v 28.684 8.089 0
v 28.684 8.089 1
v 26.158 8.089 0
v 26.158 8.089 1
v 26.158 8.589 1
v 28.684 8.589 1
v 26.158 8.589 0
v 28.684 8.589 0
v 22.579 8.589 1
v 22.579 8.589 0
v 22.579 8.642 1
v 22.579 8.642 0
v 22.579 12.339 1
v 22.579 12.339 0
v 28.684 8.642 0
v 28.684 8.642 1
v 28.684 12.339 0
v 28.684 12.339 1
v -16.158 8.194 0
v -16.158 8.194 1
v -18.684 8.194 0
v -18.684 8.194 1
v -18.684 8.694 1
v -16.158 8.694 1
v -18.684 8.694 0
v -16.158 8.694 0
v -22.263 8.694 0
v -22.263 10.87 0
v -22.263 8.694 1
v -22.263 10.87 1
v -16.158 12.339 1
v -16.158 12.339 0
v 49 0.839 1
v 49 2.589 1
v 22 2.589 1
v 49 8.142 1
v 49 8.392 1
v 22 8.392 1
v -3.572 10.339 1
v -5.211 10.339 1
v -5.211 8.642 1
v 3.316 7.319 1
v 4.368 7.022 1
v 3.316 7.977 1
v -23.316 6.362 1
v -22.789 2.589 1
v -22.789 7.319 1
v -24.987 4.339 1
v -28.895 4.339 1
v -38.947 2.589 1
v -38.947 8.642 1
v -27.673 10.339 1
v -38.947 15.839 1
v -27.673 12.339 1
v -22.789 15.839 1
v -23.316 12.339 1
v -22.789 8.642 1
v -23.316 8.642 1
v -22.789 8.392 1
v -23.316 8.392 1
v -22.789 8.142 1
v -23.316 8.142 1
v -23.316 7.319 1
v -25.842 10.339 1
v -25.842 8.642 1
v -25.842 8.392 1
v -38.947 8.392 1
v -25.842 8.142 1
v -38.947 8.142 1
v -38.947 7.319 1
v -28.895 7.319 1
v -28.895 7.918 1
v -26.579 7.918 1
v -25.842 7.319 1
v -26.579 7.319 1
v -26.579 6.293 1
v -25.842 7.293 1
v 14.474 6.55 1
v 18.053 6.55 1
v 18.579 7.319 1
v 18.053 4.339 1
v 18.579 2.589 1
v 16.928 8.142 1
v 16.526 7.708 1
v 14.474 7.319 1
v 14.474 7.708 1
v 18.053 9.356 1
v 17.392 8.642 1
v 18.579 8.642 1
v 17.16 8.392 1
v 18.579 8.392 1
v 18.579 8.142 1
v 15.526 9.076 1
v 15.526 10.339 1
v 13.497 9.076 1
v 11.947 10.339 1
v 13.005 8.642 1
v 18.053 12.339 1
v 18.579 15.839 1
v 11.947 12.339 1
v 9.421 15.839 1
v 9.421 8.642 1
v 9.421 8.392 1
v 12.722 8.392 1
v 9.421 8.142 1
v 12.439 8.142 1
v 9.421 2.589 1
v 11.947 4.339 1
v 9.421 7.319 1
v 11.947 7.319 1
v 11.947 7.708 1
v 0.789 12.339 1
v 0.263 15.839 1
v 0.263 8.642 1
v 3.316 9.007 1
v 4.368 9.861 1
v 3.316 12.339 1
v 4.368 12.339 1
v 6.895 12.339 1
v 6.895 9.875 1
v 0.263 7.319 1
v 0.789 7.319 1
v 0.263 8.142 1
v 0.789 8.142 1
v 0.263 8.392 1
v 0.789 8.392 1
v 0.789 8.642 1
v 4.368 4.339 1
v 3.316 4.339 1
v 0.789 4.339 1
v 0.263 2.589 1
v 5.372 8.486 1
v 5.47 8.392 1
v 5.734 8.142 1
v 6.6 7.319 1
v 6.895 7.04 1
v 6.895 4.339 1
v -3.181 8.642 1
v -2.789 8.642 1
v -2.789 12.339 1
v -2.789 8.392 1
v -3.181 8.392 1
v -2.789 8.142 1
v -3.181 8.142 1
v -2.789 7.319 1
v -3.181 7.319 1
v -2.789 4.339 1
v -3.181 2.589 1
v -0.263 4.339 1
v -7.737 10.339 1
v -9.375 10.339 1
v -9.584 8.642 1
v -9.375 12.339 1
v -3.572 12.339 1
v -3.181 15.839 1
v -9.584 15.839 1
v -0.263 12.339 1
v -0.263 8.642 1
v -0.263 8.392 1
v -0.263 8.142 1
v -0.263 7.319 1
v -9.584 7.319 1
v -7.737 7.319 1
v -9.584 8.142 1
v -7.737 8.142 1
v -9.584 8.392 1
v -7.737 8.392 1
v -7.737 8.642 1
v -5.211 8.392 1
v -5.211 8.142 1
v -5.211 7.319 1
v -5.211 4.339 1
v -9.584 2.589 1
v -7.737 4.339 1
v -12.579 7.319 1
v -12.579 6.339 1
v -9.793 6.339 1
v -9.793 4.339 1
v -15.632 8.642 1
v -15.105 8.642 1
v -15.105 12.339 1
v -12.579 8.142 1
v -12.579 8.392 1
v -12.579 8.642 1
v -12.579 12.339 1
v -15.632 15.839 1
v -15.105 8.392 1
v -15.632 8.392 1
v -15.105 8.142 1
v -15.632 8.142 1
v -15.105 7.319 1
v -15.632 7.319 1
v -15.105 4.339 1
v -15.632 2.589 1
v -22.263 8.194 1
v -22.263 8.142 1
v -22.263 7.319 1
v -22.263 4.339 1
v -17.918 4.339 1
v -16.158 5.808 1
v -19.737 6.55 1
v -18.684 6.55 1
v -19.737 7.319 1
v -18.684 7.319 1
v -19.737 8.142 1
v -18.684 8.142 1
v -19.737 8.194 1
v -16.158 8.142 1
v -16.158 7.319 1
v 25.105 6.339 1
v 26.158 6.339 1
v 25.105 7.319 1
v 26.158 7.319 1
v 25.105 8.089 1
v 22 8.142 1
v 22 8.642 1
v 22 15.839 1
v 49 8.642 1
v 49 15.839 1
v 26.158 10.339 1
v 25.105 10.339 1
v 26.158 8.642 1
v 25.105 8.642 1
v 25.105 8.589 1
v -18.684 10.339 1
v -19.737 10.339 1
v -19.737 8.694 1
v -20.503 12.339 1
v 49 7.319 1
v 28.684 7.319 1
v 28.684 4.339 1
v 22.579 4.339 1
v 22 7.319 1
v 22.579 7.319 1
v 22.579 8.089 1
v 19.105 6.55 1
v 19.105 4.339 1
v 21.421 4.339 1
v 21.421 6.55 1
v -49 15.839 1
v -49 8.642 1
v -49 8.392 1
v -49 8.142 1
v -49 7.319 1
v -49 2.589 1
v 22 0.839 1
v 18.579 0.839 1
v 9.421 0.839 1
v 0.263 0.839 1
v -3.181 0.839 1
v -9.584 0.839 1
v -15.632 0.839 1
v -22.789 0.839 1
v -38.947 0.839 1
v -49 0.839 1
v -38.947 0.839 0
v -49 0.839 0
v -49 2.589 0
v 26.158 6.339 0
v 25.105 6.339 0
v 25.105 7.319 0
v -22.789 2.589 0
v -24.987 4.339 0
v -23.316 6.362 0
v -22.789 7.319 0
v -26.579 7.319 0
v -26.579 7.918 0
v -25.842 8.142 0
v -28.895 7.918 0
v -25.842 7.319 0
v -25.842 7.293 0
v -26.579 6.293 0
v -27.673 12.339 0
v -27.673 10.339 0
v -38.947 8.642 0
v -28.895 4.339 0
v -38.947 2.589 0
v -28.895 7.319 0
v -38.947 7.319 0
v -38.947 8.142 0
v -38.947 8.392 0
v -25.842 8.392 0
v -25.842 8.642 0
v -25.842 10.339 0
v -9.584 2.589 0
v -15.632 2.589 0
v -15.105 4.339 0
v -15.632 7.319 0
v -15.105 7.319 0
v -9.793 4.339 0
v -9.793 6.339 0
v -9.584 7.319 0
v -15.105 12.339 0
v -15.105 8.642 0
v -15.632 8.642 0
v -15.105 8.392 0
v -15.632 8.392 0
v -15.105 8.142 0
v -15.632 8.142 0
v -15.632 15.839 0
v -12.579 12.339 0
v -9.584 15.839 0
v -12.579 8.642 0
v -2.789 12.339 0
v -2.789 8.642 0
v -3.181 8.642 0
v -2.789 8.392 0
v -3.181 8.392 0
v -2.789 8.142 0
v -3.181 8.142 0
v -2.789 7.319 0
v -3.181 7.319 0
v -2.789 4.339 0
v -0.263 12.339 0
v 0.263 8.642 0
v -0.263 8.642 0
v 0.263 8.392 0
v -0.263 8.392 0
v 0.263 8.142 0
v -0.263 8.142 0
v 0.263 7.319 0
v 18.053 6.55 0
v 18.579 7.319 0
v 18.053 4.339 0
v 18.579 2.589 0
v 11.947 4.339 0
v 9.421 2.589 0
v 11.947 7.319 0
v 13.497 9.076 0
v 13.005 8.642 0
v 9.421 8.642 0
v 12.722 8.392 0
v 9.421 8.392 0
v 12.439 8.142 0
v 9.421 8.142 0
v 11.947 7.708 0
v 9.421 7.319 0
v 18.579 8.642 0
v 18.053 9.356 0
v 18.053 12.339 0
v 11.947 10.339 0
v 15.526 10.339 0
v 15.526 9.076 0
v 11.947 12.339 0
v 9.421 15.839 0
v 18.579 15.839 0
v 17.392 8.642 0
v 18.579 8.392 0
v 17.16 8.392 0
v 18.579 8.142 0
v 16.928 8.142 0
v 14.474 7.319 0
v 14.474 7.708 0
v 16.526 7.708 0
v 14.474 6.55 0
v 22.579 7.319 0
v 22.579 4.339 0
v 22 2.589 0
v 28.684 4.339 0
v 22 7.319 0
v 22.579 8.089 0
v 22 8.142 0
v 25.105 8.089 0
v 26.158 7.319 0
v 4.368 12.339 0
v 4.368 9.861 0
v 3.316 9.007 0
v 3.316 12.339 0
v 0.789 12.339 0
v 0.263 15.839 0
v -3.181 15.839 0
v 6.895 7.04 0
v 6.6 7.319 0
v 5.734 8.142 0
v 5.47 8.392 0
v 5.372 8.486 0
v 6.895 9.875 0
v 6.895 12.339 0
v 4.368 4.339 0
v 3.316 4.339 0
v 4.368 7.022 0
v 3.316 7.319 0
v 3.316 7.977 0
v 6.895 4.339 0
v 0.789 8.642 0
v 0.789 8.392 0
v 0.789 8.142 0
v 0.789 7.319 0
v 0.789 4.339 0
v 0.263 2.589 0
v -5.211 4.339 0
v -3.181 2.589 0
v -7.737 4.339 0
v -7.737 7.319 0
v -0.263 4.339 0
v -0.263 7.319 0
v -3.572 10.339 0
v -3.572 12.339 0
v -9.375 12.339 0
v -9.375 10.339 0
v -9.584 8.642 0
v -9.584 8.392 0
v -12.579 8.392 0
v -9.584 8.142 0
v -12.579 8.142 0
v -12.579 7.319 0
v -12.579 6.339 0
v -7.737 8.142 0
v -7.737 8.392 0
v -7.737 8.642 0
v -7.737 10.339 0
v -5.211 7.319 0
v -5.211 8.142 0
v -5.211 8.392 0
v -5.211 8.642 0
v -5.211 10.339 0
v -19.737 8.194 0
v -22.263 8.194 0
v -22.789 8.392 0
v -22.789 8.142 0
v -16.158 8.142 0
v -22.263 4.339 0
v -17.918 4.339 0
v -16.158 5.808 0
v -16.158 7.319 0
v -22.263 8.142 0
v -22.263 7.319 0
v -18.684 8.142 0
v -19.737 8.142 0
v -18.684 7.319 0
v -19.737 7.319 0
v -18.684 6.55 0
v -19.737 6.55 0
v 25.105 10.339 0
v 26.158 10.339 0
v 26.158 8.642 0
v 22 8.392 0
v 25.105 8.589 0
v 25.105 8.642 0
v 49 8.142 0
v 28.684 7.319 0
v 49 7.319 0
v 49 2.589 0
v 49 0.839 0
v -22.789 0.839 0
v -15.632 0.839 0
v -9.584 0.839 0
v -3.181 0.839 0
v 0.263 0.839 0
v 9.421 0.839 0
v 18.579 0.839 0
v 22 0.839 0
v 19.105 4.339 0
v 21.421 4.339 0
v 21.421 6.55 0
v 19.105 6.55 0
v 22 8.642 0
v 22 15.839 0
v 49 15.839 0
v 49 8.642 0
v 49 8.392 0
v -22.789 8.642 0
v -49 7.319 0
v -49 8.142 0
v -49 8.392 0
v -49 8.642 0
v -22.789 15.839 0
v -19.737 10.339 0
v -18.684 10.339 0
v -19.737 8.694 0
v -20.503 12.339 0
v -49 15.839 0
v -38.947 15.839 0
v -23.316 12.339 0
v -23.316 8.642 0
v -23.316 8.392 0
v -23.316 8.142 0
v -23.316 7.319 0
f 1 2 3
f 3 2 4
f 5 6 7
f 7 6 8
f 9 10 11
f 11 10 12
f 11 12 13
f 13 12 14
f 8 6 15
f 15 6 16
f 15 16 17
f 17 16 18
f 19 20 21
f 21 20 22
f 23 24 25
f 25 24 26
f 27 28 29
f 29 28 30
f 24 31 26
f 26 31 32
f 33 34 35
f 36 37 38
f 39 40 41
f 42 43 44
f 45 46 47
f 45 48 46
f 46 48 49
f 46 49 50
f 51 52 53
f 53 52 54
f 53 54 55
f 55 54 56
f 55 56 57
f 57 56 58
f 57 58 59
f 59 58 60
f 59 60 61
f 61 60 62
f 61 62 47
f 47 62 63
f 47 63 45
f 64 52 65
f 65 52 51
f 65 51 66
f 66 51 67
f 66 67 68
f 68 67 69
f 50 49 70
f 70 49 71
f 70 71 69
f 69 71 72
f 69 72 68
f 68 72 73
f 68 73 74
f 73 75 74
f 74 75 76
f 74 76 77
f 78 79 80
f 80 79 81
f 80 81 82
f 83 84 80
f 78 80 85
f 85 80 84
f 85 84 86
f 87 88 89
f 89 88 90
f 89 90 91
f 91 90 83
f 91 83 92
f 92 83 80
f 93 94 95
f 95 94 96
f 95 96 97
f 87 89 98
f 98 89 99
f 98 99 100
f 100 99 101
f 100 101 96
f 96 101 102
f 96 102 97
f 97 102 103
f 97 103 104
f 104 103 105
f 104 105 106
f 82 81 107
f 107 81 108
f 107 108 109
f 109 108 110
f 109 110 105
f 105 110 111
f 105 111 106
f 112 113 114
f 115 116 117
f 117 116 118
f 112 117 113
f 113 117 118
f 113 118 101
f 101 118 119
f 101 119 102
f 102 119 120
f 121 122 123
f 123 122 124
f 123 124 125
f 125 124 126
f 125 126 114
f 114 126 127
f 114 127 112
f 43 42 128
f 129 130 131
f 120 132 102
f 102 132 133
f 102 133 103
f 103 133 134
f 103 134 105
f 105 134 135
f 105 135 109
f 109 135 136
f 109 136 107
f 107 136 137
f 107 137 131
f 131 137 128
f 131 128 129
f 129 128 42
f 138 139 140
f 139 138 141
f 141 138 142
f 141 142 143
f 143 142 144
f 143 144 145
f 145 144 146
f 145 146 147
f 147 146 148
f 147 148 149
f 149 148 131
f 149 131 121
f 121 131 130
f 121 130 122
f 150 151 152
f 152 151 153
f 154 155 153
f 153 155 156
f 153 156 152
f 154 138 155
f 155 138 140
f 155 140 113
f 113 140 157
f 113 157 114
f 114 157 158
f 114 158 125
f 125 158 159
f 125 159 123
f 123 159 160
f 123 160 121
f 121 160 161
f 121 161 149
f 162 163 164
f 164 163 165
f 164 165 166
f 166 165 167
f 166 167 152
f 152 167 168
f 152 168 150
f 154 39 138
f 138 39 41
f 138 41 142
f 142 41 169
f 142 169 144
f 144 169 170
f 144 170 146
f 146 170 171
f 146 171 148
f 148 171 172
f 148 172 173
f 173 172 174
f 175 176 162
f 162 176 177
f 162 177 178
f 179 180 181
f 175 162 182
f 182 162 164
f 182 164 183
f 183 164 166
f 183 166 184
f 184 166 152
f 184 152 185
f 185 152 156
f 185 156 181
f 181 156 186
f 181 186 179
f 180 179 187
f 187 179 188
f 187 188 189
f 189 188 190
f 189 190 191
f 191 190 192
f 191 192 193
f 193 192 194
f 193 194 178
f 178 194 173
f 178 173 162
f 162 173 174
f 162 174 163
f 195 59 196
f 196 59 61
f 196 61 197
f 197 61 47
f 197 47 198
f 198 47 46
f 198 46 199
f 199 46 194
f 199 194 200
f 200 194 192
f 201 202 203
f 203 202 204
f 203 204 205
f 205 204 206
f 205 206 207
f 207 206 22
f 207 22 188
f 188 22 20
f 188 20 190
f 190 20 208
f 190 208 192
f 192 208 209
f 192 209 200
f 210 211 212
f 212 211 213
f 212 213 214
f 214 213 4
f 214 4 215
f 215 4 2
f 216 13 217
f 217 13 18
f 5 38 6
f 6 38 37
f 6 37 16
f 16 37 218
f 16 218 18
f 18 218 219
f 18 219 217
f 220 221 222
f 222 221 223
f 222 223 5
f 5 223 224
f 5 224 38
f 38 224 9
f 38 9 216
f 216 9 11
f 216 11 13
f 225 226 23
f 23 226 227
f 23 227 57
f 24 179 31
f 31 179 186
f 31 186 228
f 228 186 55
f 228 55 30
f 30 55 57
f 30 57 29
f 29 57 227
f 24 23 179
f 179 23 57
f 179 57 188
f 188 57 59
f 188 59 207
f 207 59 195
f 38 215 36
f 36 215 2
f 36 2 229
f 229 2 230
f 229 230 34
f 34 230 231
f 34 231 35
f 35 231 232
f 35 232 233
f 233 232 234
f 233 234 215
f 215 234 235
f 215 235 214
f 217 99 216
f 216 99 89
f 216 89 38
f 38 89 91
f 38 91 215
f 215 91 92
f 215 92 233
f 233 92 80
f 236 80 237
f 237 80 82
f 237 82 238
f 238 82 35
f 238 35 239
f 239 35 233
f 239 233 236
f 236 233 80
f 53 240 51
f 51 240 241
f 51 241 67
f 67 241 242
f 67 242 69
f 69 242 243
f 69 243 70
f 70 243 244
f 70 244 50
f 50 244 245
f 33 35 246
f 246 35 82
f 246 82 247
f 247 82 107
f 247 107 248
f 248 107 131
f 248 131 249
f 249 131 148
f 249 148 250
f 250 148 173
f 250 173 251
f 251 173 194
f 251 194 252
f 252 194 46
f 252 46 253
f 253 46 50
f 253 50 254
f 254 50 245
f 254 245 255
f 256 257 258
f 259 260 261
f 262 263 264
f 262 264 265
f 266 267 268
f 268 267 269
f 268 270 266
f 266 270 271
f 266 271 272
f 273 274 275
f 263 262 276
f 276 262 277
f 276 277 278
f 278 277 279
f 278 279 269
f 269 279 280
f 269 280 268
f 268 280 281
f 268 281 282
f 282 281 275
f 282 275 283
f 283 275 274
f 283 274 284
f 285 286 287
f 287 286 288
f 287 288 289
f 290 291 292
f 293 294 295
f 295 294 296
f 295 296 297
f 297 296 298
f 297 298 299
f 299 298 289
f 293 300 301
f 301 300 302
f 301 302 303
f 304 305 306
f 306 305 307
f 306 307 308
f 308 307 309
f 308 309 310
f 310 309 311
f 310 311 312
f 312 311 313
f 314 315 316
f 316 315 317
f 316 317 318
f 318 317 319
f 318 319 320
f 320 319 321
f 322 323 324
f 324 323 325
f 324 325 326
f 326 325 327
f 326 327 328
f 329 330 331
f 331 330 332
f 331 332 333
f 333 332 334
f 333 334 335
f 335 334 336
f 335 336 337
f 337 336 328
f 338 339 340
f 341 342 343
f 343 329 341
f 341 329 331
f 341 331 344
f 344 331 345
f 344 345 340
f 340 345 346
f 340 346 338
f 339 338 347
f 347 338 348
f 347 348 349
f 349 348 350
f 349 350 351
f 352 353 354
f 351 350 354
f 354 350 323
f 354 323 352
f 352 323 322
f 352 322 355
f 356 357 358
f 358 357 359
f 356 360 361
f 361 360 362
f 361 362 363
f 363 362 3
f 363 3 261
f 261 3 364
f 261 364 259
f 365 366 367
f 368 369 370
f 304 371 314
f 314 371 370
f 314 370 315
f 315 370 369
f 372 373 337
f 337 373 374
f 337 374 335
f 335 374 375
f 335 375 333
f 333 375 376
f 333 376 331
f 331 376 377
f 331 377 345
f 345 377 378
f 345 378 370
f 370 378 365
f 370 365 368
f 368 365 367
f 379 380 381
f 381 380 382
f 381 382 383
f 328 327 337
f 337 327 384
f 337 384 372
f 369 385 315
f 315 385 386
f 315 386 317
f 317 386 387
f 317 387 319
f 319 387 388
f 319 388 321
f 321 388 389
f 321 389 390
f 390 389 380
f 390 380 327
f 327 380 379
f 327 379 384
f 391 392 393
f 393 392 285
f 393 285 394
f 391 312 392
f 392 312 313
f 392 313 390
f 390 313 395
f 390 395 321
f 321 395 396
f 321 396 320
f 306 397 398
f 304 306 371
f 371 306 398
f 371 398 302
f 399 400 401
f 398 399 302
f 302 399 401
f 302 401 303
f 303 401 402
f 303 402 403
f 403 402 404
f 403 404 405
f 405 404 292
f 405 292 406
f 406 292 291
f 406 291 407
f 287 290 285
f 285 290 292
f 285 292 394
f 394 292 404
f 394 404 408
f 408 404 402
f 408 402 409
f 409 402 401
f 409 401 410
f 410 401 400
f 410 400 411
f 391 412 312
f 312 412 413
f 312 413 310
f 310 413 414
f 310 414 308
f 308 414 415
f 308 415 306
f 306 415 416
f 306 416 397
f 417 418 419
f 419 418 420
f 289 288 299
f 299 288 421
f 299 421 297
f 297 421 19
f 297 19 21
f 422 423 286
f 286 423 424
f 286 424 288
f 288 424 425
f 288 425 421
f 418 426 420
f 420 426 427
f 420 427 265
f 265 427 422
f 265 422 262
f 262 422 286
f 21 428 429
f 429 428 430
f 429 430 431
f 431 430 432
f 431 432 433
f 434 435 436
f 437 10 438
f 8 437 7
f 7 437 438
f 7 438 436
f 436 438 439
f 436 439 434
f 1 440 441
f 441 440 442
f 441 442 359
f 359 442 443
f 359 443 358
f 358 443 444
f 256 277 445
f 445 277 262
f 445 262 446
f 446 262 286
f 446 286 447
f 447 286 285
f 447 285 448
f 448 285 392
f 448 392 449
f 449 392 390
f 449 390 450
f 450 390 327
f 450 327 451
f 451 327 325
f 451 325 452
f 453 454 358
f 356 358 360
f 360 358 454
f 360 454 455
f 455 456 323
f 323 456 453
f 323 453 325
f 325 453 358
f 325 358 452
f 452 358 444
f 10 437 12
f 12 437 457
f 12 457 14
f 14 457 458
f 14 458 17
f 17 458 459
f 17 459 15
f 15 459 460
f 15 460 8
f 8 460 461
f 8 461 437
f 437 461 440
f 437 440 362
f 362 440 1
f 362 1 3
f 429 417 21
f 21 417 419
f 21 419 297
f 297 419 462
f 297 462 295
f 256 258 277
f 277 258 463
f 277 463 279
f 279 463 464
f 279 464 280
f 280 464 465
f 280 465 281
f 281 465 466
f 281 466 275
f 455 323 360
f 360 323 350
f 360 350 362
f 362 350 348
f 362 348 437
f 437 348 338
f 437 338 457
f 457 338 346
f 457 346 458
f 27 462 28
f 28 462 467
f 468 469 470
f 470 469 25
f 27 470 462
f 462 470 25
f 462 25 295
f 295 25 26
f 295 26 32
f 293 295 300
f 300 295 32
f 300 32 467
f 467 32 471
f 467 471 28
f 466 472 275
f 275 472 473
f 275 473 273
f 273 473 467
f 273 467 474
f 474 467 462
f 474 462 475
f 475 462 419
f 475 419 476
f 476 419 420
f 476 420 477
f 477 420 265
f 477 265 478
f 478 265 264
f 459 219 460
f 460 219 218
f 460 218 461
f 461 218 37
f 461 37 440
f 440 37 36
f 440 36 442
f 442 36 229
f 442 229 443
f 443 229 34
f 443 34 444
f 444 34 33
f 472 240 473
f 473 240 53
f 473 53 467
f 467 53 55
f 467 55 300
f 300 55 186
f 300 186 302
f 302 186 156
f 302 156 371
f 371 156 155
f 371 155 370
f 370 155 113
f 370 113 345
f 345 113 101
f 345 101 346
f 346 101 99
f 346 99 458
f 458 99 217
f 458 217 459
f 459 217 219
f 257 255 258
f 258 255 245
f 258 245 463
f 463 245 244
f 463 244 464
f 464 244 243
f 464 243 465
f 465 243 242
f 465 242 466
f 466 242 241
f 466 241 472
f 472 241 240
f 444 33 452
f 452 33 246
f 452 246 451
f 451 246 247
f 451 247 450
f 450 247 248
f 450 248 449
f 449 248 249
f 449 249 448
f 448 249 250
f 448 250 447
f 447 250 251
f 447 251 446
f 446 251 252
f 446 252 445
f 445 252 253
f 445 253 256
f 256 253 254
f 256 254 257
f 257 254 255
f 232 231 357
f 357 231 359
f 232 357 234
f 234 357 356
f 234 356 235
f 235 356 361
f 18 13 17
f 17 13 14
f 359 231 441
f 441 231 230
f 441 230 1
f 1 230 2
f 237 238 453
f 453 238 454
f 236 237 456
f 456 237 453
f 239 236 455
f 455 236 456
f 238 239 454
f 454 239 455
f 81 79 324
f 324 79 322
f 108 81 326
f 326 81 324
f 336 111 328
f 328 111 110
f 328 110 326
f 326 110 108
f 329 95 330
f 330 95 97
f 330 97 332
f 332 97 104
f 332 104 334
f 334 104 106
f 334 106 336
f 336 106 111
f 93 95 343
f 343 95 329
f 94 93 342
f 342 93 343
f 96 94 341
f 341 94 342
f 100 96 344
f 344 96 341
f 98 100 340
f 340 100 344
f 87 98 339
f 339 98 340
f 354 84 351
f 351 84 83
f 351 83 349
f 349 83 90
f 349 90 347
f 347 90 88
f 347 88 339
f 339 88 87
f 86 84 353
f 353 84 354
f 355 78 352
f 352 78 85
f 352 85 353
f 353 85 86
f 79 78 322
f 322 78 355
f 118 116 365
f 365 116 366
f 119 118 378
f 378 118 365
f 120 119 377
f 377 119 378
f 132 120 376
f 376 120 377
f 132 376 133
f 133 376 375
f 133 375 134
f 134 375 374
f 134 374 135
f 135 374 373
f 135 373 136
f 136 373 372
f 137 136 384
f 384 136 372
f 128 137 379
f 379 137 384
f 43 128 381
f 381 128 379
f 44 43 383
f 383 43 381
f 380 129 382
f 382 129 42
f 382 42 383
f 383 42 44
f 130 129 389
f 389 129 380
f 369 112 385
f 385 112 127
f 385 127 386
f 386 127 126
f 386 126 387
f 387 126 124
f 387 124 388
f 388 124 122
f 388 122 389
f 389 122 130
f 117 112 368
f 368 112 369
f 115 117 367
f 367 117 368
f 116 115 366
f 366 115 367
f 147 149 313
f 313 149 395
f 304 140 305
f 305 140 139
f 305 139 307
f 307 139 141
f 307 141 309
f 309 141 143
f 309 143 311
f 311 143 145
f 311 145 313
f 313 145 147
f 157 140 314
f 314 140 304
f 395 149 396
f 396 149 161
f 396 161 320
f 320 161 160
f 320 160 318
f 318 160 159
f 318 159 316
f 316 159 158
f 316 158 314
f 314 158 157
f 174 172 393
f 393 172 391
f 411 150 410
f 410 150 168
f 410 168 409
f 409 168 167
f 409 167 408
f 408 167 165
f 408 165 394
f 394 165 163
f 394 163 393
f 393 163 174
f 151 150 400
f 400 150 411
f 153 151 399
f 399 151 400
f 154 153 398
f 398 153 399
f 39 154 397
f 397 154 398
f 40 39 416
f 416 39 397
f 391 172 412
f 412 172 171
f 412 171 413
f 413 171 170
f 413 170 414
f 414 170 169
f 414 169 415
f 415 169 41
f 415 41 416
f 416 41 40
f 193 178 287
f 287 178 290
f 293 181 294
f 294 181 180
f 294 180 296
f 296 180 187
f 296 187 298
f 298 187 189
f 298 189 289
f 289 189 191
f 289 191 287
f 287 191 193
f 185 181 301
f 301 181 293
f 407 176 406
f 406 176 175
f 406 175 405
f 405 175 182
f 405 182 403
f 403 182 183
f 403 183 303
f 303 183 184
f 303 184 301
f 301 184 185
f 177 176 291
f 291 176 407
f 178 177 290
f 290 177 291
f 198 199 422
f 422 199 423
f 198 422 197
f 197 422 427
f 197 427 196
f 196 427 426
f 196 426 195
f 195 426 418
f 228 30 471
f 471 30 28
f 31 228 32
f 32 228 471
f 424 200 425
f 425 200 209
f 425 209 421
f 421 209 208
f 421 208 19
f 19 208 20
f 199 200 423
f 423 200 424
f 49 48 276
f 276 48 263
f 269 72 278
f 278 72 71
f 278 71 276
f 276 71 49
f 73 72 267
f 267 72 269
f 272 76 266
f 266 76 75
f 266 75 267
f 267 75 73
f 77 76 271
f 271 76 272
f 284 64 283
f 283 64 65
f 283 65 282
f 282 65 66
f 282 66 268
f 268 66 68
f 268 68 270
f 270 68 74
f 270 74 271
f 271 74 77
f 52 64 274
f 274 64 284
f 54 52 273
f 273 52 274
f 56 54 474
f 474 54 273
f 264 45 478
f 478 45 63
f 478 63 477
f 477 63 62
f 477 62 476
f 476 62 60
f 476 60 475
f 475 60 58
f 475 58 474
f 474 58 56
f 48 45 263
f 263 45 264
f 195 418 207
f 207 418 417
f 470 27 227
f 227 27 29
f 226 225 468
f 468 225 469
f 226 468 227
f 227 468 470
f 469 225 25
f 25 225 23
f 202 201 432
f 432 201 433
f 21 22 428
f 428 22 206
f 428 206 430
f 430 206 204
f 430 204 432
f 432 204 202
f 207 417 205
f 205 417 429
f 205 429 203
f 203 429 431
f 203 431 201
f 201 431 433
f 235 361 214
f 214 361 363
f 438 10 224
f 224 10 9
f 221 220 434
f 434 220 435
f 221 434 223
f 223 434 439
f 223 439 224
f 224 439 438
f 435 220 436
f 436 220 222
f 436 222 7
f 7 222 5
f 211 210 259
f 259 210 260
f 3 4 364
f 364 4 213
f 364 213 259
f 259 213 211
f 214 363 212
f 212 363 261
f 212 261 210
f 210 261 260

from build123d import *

# Parameters (mm, degrees)
SKETCH1_W           = 98
SKETCH1_H           = 15
BOSS_EXTRUDE1_DEPTH = 1
SKETCH2_W           = 1.052631579
SKETCH2_H           = 3.789473684
SKETCH2_W_2         = 2.526315789
SKETCH2_H_2         = 8
SKETCH2_W_3         = 2.315789474
SKETCH2_H_3         = 2.210526316
SKETCH2_W_4         = 6.105263158
SKETCH2_H_4         = 4
CUT_EXTRUDE1_DEPTH  = 10
SKETCH3_W           = 2.52631579
SKETCH3_H           = 0.5
SKETCH3_W_2         = 2.526315789
BOSS_EXTRUDE2_DEPTH = 1


with BuildPart() as part:
    # Sketch1 → Boss-Extrude1 (new body)
    with BuildSketch(Plane.XY):
        with Locations((0, 8.339183832)):
            Rectangle(SKETCH1_W, SKETCH1_H)
    extrude(amount=BOSS_EXTRUDE1_DEPTH)

    # Sketch2 → Cut-Extrude1 (cut)
    # profile 1 of 9: a face of its own
    with BuildSketch(Plane.XY.offset(1)):
        Polygon((-28.894736842, 4.339183832), (-28.894736842, 7.9181312), (-26.578947368, 7.9181312), (-26.578947368, 6.2931312), (-25.842105263, 7.2931312), (-25.842105263, 10.339183832), (-27.672697368, 10.339183832), (-27.672697368, 12.339183832), (-23.315789474, 12.339183832), (-23.315789474, 6.362210148), (-24.986842105, 4.339183832), align=None)
    # profile 2 of 9: a face of its own
    with BuildSketch(Plane.XY.offset(1)):
        Polygon((-22.263157895, 4.339183832), (-22.263157895, 10.870433832), (-20.503289474, 12.339183832), (-16.157894737, 12.339183832), (-16.157894737, 5.807933832), (-17.917763158, 4.339183832), align=None)
        with Locations((-19.210526316, 8.44444699)):
            Rectangle(SKETCH2_W, SKETCH2_H, mode=Mode.SUBTRACT)
    # profile 3 of 9: a face of its own
    with BuildSketch(Plane.XY.offset(1)):
        Polygon((-15.105263158, 4.339183832), (-15.105263158, 12.339183832), (-12.578947368, 12.339183832), (-12.578947368, 6.339183832), (-9.792763158, 6.339183832), (-9.792763158, 4.339183832), align=None)
    # profile 4 of 9: a face of its own
    with BuildSketch(Plane.XY.offset(1)):
        Polygon((-7.736842105, 4.339183832), (-7.736842105, 10.339183832), (-9.375, 10.339183832), (-9.375, 12.339183832), (-3.572368421, 12.339183832), (-3.572368421, 10.339183832), (-5.210526316, 10.339183832), (-5.210526316, 4.339183832), align=None)
    # profile 5 of 9: a face of its own
    with BuildSketch(Plane.XY.offset(1)):
        with Locations((-1.52631579, 8.339183832)):
            Rectangle(SKETCH2_W_2, SKETCH2_H_2)
    # profile 6 of 9: a face of its own
    with BuildSketch(Plane.XY.offset(1)):
        Polygon((4.368421053, 12.339183832), (6.894736842, 12.339183832), (6.894736842, 9.875368043), (5.371710526, 8.485565411), (6.894736842, 7.039841727), (6.894736842, 4.339183832), (4.368421053, 4.339183832), (4.368421053, 7.021749621), (3.315789474, 7.977341727), (3.315789474, 4.339183832), (0.789473684, 4.339183832), (0.789473684, 12.339183832), (3.315789474, 12.339183832), (3.315789474, 9.00694699), (4.368421053, 9.860565411), align=None)
    # profile 7 of 9: a face of its own
    with BuildSketch(Plane.XY.offset(1)):
        Polygon((18.052631579, 4.339183832), (11.947368421, 4.339183832), (11.947368421, 7.707604885), (13.496710526, 9.076025937), (15.526315789, 9.076025937), (15.526315789, 10.339183832), (11.947368421, 10.339183832), (11.947368421, 12.339183832), (18.052631579, 12.339183832), (18.052631579, 9.3556312), (16.526315789, 7.707604885), (14.473684211, 7.707604885), (14.473684211, 6.549710148), (18.052631579, 6.549710148), align=None)
    # profile 8 of 9: a face of its own
    with BuildSketch(Plane.XY.offset(1)):
        with Locations((20.263157895, 5.44444699)):
            Rectangle(SKETCH2_W_3, SKETCH2_H_3)
    # profile 9 of 9: a face of its own
    with BuildSketch(Plane.XY.offset(1)):
        with Locations((25.631578947, 8.339183832)):
            Rectangle(SKETCH2_W_4, SKETCH2_H_2)
        with Locations((25.631578948, 8.339183832)):
            Rectangle(SKETCH2_W, SKETCH2_H_4, mode=Mode.SUBTRACT)
    extrude(amount=-CUT_EXTRUDE1_DEPTH, mode=Mode.SUBTRACT)


with BuildPart() as cut_extrude1_piece_1:
    # of the separate pieces the step leaves, piece 1, a body of its own (cut_extrude1_pieces)
    add(part.part.solids().sort_by_distance((49, 15.839183832, 0))[0])



with BuildPart() as cut_extrude1_piece_2:
    # of the separate pieces the step leaves, piece 2, a body of its own (cut_extrude1_pieces)
    add(part.part.solids().sort_by_distance((26.157894737, 10.339183832, 0))[0])


with BuildPart() as cut_extrude1_piece_3:
    # of the separate pieces the step leaves, piece 3, a body of its own (cut_extrude1_pieces)
    add(part.part.solids().sort_by_distance((-18.684210526, 10.339183832, 0))[0])


with BuildPart() as cut_extrude1_piece_1_1:
    add(cut_extrude1_piece_1.part)

    add(cut_extrude1_piece_2.part)  # Boss-Extrude2 merges Cut-Extrude1 piece 2

    add(cut_extrude1_piece_3.part)  # Boss-Extrude2 merges Cut-Extrude1 piece 3
    # Sketch3 → Boss-Extrude2 (add)
    with BuildSketch(Plane.XY.offset(1)):
        with Locations((-21, 8.44444699)):
            Rectangle(SKETCH3_W, SKETCH3_H)
        with Locations((-17.421052632, 8.44444699)):
            Rectangle(SKETCH3_W_2, SKETCH3_H)
        with Locations((23.842105263, 8.339183832)):
            Rectangle(SKETCH3_W, SKETCH3_H)
        with Locations((27.421052632, 8.339183832)):
            Rectangle(SKETCH3_W_2, SKETCH3_H)
    extrude(amount=-BOSS_EXTRUDE2_DEPTH)


solid = cut_extrude1_piece_1_1.part
